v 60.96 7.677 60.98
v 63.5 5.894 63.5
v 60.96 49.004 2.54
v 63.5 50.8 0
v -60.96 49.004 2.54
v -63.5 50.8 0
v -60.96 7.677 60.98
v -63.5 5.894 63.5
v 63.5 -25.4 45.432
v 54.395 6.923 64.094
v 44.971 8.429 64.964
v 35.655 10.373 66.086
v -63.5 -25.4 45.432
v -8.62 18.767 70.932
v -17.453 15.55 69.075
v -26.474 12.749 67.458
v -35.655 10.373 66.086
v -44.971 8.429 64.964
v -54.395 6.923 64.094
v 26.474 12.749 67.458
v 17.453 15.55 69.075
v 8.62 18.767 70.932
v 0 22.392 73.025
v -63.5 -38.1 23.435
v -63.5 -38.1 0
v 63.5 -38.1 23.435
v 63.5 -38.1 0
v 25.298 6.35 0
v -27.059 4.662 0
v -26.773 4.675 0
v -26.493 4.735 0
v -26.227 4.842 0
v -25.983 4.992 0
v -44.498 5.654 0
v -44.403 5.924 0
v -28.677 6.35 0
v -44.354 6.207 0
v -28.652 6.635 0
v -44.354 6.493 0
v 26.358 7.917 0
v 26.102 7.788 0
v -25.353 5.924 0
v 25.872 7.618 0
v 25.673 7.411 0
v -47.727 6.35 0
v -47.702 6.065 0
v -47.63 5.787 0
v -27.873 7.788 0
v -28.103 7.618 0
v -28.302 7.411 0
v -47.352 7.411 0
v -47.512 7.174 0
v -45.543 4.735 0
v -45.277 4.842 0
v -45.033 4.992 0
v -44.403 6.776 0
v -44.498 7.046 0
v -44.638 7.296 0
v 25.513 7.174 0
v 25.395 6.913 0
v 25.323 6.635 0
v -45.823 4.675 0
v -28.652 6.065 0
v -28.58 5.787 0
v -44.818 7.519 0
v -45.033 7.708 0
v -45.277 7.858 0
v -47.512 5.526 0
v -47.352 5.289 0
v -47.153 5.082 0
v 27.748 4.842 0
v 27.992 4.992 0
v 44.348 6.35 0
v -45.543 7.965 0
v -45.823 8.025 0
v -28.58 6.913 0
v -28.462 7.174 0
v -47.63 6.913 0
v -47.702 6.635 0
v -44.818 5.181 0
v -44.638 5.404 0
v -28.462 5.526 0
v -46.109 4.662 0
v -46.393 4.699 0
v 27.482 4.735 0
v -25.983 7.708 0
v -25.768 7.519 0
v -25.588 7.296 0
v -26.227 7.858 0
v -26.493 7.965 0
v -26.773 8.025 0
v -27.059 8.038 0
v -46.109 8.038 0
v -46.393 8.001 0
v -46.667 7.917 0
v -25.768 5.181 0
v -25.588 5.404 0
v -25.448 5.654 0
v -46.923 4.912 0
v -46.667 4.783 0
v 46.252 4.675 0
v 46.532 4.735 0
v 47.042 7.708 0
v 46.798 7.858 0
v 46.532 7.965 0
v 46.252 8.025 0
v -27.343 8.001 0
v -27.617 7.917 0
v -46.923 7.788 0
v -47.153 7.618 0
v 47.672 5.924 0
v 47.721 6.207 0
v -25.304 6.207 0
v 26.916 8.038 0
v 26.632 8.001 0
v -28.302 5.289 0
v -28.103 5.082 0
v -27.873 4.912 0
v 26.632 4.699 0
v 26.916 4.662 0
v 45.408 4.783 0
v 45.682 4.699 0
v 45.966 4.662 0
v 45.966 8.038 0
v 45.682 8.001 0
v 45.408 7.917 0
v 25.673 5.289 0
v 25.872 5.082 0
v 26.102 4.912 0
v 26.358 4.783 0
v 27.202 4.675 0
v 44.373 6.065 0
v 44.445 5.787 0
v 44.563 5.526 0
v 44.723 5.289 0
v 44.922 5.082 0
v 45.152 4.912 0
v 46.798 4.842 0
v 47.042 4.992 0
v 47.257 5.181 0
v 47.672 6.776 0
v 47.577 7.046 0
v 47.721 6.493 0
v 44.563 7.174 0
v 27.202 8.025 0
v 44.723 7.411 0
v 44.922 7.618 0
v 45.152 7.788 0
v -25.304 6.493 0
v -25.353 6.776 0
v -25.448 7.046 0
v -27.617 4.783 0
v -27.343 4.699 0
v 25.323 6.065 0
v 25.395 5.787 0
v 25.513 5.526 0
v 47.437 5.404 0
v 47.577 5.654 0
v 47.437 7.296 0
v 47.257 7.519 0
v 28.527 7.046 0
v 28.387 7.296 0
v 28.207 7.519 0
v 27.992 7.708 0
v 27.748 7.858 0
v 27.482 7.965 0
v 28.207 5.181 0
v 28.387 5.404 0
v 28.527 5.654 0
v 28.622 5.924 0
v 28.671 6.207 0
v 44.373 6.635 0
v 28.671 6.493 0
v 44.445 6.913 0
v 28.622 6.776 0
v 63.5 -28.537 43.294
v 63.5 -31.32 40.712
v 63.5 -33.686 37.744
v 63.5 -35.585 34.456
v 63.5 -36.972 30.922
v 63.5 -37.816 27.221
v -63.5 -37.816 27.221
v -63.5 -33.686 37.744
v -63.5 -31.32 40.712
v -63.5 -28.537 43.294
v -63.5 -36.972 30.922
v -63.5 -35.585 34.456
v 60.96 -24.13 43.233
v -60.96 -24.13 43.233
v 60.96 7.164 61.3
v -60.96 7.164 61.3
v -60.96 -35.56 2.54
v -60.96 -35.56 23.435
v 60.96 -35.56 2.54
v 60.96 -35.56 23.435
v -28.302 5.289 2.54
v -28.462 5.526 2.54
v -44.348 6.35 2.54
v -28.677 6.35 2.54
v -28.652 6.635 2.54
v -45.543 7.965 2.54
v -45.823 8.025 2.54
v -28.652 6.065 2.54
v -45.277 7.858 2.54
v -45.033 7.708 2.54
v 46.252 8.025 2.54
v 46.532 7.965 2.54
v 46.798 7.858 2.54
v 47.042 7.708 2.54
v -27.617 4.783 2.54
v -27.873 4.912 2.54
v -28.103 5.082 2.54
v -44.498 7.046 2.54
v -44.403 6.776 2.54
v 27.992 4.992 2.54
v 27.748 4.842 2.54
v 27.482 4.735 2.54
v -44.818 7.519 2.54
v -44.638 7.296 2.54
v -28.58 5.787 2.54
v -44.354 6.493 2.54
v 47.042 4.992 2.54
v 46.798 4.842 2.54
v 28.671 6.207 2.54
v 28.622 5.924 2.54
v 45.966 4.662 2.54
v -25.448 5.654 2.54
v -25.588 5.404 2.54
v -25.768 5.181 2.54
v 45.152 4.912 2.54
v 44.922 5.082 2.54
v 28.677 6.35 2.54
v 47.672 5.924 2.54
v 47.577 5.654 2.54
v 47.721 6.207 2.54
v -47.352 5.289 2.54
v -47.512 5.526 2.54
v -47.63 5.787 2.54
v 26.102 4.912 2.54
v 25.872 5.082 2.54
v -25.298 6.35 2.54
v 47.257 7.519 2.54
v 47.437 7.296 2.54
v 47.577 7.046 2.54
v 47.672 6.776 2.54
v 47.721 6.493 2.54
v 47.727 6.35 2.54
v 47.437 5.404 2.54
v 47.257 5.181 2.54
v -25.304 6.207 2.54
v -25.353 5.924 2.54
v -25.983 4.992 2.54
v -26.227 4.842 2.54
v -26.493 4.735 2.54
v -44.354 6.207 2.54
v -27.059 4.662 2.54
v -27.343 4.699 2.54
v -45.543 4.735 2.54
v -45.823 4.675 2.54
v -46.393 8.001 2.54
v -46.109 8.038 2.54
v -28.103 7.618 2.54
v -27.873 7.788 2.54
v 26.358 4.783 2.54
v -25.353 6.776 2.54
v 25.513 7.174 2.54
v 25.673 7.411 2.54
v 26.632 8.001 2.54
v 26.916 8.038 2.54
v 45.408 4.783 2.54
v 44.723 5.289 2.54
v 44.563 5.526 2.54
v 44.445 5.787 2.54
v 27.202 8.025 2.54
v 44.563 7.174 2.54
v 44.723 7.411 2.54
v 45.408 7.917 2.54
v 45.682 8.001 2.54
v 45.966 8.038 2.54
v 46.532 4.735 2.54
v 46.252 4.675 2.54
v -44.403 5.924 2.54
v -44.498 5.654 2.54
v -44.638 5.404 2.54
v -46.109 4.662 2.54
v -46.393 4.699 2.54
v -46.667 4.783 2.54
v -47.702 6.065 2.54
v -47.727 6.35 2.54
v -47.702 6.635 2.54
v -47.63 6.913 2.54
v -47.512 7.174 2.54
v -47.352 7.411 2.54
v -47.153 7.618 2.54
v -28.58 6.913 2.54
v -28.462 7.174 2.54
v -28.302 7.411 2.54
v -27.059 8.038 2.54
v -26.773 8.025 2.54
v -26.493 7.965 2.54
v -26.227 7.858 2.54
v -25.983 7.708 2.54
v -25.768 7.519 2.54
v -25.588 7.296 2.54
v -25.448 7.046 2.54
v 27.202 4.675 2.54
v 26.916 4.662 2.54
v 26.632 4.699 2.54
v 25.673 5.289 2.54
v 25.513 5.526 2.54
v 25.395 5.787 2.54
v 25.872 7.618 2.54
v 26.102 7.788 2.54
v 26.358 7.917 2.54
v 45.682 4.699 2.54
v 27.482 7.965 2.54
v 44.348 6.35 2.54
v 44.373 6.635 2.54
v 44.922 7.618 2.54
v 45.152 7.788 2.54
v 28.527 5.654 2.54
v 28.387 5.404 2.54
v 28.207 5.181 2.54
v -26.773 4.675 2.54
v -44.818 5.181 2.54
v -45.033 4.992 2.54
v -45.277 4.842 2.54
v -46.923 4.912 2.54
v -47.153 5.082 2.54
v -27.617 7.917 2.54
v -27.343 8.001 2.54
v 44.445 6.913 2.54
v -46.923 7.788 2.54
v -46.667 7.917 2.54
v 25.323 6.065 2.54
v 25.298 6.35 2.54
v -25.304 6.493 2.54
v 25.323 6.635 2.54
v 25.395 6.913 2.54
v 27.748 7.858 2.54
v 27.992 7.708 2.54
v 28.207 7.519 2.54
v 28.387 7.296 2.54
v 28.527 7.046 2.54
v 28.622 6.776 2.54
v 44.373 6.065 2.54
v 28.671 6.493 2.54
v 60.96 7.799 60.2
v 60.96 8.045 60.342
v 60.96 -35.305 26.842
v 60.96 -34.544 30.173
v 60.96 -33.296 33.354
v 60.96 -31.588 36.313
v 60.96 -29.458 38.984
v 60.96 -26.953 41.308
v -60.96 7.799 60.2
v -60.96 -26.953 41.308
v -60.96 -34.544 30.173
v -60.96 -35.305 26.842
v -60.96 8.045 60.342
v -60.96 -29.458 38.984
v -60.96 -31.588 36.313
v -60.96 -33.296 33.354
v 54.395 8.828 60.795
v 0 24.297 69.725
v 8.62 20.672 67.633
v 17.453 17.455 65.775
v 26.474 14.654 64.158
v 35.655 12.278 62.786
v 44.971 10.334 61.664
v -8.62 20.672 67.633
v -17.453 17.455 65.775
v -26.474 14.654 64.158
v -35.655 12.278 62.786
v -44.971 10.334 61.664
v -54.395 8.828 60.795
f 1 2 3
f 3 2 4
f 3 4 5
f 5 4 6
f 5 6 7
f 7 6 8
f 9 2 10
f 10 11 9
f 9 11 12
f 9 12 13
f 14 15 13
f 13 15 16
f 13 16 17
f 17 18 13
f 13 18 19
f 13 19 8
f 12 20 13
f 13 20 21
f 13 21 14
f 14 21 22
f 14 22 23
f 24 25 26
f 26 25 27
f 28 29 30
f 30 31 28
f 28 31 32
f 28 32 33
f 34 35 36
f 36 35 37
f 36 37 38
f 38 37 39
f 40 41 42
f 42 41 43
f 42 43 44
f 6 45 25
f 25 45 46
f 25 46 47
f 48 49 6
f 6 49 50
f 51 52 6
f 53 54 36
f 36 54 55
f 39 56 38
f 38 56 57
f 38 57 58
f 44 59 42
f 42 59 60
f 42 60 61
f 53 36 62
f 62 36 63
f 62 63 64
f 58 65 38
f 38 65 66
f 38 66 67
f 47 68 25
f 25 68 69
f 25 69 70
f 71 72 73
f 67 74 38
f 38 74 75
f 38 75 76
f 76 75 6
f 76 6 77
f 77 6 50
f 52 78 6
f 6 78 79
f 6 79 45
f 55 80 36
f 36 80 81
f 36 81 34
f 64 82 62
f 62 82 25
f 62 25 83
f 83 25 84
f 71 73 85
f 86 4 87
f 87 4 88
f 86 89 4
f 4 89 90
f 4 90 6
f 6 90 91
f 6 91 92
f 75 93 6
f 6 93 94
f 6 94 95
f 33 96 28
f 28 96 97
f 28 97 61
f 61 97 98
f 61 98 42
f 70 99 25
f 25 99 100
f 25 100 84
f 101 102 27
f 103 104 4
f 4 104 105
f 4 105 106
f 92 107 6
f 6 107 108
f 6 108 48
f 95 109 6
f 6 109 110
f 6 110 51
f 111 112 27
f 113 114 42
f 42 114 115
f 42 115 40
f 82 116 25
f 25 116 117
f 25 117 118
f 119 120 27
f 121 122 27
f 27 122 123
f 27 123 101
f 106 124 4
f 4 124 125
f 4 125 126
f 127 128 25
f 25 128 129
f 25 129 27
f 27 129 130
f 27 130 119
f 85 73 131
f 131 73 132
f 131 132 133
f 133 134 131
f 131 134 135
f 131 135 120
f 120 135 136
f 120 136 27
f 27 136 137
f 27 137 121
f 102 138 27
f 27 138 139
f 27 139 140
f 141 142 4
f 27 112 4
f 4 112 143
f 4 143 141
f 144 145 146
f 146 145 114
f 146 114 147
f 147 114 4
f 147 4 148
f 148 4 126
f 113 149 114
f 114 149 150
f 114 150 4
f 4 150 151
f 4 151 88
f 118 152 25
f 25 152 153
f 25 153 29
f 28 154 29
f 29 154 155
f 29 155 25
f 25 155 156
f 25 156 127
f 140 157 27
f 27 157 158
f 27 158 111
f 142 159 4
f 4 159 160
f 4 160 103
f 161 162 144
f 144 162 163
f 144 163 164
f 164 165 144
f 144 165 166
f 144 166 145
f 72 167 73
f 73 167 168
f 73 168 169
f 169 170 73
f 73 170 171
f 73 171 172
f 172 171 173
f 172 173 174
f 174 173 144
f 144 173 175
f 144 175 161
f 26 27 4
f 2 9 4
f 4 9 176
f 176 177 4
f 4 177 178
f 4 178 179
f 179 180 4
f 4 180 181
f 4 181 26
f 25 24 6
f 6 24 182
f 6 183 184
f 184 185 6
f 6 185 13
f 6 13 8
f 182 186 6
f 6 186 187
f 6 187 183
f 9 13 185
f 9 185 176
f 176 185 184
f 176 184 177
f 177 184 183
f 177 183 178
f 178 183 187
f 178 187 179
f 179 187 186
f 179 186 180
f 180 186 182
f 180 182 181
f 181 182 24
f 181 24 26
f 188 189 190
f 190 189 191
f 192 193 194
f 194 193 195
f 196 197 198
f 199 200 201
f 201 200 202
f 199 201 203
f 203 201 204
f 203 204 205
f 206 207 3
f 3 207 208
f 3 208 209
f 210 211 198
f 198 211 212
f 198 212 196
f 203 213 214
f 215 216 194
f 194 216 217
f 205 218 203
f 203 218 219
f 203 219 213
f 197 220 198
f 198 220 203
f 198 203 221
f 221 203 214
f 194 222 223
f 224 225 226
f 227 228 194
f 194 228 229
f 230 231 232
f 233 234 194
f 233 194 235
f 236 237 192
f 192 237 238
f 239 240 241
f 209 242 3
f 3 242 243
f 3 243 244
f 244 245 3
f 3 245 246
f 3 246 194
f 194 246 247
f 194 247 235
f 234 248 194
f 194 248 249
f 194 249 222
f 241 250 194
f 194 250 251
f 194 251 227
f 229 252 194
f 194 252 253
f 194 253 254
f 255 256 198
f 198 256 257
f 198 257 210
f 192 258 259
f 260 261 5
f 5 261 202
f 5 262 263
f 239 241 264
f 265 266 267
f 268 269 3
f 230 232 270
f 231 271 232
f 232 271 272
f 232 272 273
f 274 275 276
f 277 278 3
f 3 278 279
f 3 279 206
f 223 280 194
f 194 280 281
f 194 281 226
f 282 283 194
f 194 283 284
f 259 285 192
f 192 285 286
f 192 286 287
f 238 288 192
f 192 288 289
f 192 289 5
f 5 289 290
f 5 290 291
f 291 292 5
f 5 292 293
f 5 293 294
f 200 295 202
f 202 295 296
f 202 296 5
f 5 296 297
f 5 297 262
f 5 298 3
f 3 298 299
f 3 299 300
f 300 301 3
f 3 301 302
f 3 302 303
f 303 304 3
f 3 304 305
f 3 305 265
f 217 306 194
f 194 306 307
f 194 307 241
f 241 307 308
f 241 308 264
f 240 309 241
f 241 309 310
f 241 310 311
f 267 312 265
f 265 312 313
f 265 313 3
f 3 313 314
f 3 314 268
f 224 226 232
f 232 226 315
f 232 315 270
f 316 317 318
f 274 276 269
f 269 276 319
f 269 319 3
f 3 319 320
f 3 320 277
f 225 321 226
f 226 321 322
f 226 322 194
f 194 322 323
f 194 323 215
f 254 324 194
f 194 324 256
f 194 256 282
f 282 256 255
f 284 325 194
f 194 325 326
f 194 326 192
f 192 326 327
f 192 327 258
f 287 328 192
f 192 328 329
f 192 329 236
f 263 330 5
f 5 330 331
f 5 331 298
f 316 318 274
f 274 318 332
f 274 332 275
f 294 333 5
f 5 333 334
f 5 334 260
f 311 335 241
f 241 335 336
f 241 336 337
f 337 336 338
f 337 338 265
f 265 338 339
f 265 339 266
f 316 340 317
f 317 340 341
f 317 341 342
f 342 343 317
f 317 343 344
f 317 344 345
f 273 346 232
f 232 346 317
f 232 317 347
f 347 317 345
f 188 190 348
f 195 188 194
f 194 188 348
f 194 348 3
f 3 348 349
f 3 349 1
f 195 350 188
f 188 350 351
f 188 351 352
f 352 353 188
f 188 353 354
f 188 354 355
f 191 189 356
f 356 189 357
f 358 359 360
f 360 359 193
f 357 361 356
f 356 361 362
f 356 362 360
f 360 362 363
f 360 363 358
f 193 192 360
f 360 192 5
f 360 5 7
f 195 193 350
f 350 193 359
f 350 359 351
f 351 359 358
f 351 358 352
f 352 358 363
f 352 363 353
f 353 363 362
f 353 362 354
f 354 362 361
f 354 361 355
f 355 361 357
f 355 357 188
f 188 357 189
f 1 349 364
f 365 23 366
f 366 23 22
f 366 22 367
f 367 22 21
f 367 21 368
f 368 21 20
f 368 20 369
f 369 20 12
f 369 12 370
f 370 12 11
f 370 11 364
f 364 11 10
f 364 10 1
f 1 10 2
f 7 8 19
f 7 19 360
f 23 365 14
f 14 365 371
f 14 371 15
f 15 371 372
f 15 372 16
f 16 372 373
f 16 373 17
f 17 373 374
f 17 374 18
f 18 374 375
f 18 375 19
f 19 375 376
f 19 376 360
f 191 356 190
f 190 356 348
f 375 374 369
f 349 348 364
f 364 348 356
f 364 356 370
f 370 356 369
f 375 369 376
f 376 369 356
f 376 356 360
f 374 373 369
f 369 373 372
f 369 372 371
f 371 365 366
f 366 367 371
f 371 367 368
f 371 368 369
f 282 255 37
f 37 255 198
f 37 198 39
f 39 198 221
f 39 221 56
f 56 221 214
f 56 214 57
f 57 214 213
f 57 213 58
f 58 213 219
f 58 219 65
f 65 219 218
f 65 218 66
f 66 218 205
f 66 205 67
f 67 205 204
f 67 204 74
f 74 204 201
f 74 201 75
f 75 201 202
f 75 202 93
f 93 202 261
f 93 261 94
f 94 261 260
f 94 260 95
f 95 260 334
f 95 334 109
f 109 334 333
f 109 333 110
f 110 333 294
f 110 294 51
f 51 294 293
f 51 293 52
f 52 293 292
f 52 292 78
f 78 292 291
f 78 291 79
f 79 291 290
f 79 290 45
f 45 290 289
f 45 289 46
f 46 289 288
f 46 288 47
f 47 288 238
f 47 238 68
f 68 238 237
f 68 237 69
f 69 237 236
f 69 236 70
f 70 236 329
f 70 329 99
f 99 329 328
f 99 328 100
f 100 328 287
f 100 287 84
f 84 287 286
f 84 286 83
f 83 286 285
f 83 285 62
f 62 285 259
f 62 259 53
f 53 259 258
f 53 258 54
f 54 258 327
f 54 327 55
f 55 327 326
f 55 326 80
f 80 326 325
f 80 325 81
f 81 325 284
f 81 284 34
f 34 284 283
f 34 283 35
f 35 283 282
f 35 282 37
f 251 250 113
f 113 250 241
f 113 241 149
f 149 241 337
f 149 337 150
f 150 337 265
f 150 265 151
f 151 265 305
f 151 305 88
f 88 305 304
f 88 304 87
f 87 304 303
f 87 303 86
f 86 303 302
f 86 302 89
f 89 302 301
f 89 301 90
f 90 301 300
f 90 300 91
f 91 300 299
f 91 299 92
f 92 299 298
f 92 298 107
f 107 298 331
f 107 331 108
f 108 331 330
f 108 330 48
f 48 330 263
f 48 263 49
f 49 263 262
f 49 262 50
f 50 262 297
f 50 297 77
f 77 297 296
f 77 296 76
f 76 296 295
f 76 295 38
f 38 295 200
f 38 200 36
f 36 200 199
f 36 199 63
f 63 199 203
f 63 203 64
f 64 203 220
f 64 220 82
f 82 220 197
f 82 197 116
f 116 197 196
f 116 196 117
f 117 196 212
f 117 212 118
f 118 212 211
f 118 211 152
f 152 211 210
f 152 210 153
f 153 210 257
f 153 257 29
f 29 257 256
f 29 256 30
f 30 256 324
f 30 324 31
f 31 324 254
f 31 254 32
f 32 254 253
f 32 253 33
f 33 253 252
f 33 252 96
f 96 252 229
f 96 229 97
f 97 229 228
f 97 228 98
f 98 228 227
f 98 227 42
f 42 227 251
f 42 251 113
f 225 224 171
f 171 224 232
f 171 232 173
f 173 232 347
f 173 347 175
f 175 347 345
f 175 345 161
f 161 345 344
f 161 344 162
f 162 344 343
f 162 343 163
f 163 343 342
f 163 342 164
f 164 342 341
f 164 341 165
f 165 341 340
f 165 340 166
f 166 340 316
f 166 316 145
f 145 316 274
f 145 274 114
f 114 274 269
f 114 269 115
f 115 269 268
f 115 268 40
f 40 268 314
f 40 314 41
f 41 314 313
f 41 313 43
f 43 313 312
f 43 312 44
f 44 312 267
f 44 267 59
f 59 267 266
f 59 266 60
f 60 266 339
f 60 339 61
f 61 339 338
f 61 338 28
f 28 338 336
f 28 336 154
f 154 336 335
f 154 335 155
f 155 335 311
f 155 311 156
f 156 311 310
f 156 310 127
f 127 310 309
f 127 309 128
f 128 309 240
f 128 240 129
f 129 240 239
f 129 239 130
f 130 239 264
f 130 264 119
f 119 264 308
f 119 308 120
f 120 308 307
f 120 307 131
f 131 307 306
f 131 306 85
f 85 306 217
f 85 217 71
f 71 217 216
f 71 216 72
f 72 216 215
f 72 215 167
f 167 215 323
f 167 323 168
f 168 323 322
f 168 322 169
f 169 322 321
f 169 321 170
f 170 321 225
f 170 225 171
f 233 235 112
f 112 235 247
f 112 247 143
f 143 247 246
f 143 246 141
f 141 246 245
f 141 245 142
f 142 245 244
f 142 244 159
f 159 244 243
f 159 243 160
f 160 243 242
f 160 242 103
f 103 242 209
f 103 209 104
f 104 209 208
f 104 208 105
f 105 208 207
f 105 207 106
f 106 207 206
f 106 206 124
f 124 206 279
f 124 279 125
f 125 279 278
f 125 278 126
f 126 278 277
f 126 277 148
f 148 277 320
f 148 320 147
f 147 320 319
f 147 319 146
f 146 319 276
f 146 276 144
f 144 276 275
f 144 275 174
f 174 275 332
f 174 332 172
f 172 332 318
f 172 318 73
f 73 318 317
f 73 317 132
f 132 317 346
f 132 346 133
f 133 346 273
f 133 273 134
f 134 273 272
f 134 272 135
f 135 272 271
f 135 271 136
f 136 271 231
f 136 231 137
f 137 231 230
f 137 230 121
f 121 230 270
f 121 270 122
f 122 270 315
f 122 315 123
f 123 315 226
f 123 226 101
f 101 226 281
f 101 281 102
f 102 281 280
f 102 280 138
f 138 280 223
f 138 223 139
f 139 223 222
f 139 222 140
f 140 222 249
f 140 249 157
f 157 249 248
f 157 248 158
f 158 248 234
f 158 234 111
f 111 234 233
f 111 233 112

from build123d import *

# Parameters (mm, degrees)
BOSS_EXTRUDE1_DEPTH = 63.5
FILLET1_R           = 25.4
SHELL1_T            = -2.54
BOSS_EXTRUDE4_DEPTH = 3.81
CUT_EXTRUDE2_REACH  = 75.025
SKETCH6_R           = 1.6891


with BuildPart() as part:
    # Sketch2 → Boss-Extrude1 (new body, symmetric)
    with BuildSketch(Plane(origin=(0, 0, 0), x_dir=(0, 0, -1), z_dir=(1, 0, 0))):
        Polygon((0, 50.8), (0, -38.1), (-38.1, -38.1), (-63.5, 5.894090512), align=None)
    extrude(amount=BOSS_EXTRUDE1_DEPTH, both=True)

    # Fillet1
    fillet1_edges = [part.edges().sort_by_distance(p)[0] for p in [
        (0, -38.1, 38.1),
    ]]
    fillet(fillet1_edges, radius=FILLET1_R)

    # Shell1
    shell1_openings = [part.faces().sort_by_distance(p)[0] for p in [
        (0, 28.347045256, 31.75),
    ]]
    offset(amount=SHELL1_T, openings=shell1_openings, kind=Kind.INTERSECTION)

    # Sketch3 → Boss-Extrude4 (add)
    with BuildSketch(Plane(origin=(0, -26.022783942, 45.072783942), x_dir=(1, 0, 0), z_dir=(0, -0.5, 0.866025404))):
        with BuildLine():
            Line((-63.5, 36.854432116), (63.5, 36.854432116))
            ThreePointArc((63.5, 36.854432116), (30.854255532, 43.393617223), (0, 55.904432116))
            ThreePointArc((0, 55.904432116), (-30.854255532, 43.393617223), (-63.5, 36.854432116))
        make_face()
    extrude(amount=-BOSS_EXTRUDE4_DEPTH)

    # Sketch6 → Cut-Extrude2 (cut, up to next)
    with BuildSketch(Plane(origin=(0, 0, 0), x_dir=(-1, 0, 0), z_dir=(0, 0, -1)), mode=Mode.PRIVATE) as cut_extrude2_sk1:
        with Locations((-46.0375, 6.35)):
            Circle(SKETCH6_R)
    cut_extrude2_tool1 = extrude(cut_extrude2_sk1.sketch, amount=-CUT_EXTRUDE2_REACH, mode=Mode.PRIVATE) & part.part
    add(cut_extrude2_tool1.solids().sort_by_distance((46.0375, 6.35, 0))[0], mode=Mode.SUBTRACT)
    # Sketch6 → Cut-Extrude2 (cut, up to next)
    with BuildSketch(Plane(origin=(0, 0, 0), x_dir=(-1, 0, 0), z_dir=(0, 0, -1)), mode=Mode.PRIVATE) as cut_extrude2_sk2:
        with Locations((-26.9875, 6.35)):
            Circle(SKETCH6_R)
    cut_extrude2_tool2 = extrude(cut_extrude2_sk2.sketch, amount=-CUT_EXTRUDE2_REACH, mode=Mode.PRIVATE) & part.part
    add(cut_extrude2_tool2.solids().sort_by_distance((26.9875, 6.35, 0))[0], mode=Mode.SUBTRACT)
    # Sketch6 → Cut-Extrude2 (cut, up to next)
    with BuildSketch(Plane(origin=(0, 0, 0), x_dir=(-1, 0, 0), z_dir=(0, 0, -1)), mode=Mode.PRIVATE) as cut_extrude2_sk3:
        with Locations((26.9875, 6.35)):
            Circle(SKETCH6_R)
    cut_extrude2_tool3 = extrude(cut_extrude2_sk3.sketch, amount=-CUT_EXTRUDE2_REACH, mode=Mode.PRIVATE) & part.part
    add(cut_extrude2_tool3.solids().sort_by_distance((-26.9875, 6.35, 0))[0], mode=Mode.SUBTRACT)
    # Sketch6 → Cut-Extrude2 (cut, up to next)
    with BuildSketch(Plane(origin=(0, 0, 0), x_dir=(-1, 0, 0), z_dir=(0, 0, -1)), mode=Mode.PRIVATE) as cut_extrude2_sk4:
        with Locations((46.0375, 6.35)):
            Circle(SKETCH6_R)
    cut_extrude2_tool4 = extrude(cut_extrude2_sk4.sketch, amount=-CUT_EXTRUDE2_REACH, mode=Mode.PRIVATE) & part.part
    add(cut_extrude2_tool4.solids().sort_by_distance((-46.0375, 6.35, 0))[0], mode=Mode.SUBTRACT)


solid = part.part
